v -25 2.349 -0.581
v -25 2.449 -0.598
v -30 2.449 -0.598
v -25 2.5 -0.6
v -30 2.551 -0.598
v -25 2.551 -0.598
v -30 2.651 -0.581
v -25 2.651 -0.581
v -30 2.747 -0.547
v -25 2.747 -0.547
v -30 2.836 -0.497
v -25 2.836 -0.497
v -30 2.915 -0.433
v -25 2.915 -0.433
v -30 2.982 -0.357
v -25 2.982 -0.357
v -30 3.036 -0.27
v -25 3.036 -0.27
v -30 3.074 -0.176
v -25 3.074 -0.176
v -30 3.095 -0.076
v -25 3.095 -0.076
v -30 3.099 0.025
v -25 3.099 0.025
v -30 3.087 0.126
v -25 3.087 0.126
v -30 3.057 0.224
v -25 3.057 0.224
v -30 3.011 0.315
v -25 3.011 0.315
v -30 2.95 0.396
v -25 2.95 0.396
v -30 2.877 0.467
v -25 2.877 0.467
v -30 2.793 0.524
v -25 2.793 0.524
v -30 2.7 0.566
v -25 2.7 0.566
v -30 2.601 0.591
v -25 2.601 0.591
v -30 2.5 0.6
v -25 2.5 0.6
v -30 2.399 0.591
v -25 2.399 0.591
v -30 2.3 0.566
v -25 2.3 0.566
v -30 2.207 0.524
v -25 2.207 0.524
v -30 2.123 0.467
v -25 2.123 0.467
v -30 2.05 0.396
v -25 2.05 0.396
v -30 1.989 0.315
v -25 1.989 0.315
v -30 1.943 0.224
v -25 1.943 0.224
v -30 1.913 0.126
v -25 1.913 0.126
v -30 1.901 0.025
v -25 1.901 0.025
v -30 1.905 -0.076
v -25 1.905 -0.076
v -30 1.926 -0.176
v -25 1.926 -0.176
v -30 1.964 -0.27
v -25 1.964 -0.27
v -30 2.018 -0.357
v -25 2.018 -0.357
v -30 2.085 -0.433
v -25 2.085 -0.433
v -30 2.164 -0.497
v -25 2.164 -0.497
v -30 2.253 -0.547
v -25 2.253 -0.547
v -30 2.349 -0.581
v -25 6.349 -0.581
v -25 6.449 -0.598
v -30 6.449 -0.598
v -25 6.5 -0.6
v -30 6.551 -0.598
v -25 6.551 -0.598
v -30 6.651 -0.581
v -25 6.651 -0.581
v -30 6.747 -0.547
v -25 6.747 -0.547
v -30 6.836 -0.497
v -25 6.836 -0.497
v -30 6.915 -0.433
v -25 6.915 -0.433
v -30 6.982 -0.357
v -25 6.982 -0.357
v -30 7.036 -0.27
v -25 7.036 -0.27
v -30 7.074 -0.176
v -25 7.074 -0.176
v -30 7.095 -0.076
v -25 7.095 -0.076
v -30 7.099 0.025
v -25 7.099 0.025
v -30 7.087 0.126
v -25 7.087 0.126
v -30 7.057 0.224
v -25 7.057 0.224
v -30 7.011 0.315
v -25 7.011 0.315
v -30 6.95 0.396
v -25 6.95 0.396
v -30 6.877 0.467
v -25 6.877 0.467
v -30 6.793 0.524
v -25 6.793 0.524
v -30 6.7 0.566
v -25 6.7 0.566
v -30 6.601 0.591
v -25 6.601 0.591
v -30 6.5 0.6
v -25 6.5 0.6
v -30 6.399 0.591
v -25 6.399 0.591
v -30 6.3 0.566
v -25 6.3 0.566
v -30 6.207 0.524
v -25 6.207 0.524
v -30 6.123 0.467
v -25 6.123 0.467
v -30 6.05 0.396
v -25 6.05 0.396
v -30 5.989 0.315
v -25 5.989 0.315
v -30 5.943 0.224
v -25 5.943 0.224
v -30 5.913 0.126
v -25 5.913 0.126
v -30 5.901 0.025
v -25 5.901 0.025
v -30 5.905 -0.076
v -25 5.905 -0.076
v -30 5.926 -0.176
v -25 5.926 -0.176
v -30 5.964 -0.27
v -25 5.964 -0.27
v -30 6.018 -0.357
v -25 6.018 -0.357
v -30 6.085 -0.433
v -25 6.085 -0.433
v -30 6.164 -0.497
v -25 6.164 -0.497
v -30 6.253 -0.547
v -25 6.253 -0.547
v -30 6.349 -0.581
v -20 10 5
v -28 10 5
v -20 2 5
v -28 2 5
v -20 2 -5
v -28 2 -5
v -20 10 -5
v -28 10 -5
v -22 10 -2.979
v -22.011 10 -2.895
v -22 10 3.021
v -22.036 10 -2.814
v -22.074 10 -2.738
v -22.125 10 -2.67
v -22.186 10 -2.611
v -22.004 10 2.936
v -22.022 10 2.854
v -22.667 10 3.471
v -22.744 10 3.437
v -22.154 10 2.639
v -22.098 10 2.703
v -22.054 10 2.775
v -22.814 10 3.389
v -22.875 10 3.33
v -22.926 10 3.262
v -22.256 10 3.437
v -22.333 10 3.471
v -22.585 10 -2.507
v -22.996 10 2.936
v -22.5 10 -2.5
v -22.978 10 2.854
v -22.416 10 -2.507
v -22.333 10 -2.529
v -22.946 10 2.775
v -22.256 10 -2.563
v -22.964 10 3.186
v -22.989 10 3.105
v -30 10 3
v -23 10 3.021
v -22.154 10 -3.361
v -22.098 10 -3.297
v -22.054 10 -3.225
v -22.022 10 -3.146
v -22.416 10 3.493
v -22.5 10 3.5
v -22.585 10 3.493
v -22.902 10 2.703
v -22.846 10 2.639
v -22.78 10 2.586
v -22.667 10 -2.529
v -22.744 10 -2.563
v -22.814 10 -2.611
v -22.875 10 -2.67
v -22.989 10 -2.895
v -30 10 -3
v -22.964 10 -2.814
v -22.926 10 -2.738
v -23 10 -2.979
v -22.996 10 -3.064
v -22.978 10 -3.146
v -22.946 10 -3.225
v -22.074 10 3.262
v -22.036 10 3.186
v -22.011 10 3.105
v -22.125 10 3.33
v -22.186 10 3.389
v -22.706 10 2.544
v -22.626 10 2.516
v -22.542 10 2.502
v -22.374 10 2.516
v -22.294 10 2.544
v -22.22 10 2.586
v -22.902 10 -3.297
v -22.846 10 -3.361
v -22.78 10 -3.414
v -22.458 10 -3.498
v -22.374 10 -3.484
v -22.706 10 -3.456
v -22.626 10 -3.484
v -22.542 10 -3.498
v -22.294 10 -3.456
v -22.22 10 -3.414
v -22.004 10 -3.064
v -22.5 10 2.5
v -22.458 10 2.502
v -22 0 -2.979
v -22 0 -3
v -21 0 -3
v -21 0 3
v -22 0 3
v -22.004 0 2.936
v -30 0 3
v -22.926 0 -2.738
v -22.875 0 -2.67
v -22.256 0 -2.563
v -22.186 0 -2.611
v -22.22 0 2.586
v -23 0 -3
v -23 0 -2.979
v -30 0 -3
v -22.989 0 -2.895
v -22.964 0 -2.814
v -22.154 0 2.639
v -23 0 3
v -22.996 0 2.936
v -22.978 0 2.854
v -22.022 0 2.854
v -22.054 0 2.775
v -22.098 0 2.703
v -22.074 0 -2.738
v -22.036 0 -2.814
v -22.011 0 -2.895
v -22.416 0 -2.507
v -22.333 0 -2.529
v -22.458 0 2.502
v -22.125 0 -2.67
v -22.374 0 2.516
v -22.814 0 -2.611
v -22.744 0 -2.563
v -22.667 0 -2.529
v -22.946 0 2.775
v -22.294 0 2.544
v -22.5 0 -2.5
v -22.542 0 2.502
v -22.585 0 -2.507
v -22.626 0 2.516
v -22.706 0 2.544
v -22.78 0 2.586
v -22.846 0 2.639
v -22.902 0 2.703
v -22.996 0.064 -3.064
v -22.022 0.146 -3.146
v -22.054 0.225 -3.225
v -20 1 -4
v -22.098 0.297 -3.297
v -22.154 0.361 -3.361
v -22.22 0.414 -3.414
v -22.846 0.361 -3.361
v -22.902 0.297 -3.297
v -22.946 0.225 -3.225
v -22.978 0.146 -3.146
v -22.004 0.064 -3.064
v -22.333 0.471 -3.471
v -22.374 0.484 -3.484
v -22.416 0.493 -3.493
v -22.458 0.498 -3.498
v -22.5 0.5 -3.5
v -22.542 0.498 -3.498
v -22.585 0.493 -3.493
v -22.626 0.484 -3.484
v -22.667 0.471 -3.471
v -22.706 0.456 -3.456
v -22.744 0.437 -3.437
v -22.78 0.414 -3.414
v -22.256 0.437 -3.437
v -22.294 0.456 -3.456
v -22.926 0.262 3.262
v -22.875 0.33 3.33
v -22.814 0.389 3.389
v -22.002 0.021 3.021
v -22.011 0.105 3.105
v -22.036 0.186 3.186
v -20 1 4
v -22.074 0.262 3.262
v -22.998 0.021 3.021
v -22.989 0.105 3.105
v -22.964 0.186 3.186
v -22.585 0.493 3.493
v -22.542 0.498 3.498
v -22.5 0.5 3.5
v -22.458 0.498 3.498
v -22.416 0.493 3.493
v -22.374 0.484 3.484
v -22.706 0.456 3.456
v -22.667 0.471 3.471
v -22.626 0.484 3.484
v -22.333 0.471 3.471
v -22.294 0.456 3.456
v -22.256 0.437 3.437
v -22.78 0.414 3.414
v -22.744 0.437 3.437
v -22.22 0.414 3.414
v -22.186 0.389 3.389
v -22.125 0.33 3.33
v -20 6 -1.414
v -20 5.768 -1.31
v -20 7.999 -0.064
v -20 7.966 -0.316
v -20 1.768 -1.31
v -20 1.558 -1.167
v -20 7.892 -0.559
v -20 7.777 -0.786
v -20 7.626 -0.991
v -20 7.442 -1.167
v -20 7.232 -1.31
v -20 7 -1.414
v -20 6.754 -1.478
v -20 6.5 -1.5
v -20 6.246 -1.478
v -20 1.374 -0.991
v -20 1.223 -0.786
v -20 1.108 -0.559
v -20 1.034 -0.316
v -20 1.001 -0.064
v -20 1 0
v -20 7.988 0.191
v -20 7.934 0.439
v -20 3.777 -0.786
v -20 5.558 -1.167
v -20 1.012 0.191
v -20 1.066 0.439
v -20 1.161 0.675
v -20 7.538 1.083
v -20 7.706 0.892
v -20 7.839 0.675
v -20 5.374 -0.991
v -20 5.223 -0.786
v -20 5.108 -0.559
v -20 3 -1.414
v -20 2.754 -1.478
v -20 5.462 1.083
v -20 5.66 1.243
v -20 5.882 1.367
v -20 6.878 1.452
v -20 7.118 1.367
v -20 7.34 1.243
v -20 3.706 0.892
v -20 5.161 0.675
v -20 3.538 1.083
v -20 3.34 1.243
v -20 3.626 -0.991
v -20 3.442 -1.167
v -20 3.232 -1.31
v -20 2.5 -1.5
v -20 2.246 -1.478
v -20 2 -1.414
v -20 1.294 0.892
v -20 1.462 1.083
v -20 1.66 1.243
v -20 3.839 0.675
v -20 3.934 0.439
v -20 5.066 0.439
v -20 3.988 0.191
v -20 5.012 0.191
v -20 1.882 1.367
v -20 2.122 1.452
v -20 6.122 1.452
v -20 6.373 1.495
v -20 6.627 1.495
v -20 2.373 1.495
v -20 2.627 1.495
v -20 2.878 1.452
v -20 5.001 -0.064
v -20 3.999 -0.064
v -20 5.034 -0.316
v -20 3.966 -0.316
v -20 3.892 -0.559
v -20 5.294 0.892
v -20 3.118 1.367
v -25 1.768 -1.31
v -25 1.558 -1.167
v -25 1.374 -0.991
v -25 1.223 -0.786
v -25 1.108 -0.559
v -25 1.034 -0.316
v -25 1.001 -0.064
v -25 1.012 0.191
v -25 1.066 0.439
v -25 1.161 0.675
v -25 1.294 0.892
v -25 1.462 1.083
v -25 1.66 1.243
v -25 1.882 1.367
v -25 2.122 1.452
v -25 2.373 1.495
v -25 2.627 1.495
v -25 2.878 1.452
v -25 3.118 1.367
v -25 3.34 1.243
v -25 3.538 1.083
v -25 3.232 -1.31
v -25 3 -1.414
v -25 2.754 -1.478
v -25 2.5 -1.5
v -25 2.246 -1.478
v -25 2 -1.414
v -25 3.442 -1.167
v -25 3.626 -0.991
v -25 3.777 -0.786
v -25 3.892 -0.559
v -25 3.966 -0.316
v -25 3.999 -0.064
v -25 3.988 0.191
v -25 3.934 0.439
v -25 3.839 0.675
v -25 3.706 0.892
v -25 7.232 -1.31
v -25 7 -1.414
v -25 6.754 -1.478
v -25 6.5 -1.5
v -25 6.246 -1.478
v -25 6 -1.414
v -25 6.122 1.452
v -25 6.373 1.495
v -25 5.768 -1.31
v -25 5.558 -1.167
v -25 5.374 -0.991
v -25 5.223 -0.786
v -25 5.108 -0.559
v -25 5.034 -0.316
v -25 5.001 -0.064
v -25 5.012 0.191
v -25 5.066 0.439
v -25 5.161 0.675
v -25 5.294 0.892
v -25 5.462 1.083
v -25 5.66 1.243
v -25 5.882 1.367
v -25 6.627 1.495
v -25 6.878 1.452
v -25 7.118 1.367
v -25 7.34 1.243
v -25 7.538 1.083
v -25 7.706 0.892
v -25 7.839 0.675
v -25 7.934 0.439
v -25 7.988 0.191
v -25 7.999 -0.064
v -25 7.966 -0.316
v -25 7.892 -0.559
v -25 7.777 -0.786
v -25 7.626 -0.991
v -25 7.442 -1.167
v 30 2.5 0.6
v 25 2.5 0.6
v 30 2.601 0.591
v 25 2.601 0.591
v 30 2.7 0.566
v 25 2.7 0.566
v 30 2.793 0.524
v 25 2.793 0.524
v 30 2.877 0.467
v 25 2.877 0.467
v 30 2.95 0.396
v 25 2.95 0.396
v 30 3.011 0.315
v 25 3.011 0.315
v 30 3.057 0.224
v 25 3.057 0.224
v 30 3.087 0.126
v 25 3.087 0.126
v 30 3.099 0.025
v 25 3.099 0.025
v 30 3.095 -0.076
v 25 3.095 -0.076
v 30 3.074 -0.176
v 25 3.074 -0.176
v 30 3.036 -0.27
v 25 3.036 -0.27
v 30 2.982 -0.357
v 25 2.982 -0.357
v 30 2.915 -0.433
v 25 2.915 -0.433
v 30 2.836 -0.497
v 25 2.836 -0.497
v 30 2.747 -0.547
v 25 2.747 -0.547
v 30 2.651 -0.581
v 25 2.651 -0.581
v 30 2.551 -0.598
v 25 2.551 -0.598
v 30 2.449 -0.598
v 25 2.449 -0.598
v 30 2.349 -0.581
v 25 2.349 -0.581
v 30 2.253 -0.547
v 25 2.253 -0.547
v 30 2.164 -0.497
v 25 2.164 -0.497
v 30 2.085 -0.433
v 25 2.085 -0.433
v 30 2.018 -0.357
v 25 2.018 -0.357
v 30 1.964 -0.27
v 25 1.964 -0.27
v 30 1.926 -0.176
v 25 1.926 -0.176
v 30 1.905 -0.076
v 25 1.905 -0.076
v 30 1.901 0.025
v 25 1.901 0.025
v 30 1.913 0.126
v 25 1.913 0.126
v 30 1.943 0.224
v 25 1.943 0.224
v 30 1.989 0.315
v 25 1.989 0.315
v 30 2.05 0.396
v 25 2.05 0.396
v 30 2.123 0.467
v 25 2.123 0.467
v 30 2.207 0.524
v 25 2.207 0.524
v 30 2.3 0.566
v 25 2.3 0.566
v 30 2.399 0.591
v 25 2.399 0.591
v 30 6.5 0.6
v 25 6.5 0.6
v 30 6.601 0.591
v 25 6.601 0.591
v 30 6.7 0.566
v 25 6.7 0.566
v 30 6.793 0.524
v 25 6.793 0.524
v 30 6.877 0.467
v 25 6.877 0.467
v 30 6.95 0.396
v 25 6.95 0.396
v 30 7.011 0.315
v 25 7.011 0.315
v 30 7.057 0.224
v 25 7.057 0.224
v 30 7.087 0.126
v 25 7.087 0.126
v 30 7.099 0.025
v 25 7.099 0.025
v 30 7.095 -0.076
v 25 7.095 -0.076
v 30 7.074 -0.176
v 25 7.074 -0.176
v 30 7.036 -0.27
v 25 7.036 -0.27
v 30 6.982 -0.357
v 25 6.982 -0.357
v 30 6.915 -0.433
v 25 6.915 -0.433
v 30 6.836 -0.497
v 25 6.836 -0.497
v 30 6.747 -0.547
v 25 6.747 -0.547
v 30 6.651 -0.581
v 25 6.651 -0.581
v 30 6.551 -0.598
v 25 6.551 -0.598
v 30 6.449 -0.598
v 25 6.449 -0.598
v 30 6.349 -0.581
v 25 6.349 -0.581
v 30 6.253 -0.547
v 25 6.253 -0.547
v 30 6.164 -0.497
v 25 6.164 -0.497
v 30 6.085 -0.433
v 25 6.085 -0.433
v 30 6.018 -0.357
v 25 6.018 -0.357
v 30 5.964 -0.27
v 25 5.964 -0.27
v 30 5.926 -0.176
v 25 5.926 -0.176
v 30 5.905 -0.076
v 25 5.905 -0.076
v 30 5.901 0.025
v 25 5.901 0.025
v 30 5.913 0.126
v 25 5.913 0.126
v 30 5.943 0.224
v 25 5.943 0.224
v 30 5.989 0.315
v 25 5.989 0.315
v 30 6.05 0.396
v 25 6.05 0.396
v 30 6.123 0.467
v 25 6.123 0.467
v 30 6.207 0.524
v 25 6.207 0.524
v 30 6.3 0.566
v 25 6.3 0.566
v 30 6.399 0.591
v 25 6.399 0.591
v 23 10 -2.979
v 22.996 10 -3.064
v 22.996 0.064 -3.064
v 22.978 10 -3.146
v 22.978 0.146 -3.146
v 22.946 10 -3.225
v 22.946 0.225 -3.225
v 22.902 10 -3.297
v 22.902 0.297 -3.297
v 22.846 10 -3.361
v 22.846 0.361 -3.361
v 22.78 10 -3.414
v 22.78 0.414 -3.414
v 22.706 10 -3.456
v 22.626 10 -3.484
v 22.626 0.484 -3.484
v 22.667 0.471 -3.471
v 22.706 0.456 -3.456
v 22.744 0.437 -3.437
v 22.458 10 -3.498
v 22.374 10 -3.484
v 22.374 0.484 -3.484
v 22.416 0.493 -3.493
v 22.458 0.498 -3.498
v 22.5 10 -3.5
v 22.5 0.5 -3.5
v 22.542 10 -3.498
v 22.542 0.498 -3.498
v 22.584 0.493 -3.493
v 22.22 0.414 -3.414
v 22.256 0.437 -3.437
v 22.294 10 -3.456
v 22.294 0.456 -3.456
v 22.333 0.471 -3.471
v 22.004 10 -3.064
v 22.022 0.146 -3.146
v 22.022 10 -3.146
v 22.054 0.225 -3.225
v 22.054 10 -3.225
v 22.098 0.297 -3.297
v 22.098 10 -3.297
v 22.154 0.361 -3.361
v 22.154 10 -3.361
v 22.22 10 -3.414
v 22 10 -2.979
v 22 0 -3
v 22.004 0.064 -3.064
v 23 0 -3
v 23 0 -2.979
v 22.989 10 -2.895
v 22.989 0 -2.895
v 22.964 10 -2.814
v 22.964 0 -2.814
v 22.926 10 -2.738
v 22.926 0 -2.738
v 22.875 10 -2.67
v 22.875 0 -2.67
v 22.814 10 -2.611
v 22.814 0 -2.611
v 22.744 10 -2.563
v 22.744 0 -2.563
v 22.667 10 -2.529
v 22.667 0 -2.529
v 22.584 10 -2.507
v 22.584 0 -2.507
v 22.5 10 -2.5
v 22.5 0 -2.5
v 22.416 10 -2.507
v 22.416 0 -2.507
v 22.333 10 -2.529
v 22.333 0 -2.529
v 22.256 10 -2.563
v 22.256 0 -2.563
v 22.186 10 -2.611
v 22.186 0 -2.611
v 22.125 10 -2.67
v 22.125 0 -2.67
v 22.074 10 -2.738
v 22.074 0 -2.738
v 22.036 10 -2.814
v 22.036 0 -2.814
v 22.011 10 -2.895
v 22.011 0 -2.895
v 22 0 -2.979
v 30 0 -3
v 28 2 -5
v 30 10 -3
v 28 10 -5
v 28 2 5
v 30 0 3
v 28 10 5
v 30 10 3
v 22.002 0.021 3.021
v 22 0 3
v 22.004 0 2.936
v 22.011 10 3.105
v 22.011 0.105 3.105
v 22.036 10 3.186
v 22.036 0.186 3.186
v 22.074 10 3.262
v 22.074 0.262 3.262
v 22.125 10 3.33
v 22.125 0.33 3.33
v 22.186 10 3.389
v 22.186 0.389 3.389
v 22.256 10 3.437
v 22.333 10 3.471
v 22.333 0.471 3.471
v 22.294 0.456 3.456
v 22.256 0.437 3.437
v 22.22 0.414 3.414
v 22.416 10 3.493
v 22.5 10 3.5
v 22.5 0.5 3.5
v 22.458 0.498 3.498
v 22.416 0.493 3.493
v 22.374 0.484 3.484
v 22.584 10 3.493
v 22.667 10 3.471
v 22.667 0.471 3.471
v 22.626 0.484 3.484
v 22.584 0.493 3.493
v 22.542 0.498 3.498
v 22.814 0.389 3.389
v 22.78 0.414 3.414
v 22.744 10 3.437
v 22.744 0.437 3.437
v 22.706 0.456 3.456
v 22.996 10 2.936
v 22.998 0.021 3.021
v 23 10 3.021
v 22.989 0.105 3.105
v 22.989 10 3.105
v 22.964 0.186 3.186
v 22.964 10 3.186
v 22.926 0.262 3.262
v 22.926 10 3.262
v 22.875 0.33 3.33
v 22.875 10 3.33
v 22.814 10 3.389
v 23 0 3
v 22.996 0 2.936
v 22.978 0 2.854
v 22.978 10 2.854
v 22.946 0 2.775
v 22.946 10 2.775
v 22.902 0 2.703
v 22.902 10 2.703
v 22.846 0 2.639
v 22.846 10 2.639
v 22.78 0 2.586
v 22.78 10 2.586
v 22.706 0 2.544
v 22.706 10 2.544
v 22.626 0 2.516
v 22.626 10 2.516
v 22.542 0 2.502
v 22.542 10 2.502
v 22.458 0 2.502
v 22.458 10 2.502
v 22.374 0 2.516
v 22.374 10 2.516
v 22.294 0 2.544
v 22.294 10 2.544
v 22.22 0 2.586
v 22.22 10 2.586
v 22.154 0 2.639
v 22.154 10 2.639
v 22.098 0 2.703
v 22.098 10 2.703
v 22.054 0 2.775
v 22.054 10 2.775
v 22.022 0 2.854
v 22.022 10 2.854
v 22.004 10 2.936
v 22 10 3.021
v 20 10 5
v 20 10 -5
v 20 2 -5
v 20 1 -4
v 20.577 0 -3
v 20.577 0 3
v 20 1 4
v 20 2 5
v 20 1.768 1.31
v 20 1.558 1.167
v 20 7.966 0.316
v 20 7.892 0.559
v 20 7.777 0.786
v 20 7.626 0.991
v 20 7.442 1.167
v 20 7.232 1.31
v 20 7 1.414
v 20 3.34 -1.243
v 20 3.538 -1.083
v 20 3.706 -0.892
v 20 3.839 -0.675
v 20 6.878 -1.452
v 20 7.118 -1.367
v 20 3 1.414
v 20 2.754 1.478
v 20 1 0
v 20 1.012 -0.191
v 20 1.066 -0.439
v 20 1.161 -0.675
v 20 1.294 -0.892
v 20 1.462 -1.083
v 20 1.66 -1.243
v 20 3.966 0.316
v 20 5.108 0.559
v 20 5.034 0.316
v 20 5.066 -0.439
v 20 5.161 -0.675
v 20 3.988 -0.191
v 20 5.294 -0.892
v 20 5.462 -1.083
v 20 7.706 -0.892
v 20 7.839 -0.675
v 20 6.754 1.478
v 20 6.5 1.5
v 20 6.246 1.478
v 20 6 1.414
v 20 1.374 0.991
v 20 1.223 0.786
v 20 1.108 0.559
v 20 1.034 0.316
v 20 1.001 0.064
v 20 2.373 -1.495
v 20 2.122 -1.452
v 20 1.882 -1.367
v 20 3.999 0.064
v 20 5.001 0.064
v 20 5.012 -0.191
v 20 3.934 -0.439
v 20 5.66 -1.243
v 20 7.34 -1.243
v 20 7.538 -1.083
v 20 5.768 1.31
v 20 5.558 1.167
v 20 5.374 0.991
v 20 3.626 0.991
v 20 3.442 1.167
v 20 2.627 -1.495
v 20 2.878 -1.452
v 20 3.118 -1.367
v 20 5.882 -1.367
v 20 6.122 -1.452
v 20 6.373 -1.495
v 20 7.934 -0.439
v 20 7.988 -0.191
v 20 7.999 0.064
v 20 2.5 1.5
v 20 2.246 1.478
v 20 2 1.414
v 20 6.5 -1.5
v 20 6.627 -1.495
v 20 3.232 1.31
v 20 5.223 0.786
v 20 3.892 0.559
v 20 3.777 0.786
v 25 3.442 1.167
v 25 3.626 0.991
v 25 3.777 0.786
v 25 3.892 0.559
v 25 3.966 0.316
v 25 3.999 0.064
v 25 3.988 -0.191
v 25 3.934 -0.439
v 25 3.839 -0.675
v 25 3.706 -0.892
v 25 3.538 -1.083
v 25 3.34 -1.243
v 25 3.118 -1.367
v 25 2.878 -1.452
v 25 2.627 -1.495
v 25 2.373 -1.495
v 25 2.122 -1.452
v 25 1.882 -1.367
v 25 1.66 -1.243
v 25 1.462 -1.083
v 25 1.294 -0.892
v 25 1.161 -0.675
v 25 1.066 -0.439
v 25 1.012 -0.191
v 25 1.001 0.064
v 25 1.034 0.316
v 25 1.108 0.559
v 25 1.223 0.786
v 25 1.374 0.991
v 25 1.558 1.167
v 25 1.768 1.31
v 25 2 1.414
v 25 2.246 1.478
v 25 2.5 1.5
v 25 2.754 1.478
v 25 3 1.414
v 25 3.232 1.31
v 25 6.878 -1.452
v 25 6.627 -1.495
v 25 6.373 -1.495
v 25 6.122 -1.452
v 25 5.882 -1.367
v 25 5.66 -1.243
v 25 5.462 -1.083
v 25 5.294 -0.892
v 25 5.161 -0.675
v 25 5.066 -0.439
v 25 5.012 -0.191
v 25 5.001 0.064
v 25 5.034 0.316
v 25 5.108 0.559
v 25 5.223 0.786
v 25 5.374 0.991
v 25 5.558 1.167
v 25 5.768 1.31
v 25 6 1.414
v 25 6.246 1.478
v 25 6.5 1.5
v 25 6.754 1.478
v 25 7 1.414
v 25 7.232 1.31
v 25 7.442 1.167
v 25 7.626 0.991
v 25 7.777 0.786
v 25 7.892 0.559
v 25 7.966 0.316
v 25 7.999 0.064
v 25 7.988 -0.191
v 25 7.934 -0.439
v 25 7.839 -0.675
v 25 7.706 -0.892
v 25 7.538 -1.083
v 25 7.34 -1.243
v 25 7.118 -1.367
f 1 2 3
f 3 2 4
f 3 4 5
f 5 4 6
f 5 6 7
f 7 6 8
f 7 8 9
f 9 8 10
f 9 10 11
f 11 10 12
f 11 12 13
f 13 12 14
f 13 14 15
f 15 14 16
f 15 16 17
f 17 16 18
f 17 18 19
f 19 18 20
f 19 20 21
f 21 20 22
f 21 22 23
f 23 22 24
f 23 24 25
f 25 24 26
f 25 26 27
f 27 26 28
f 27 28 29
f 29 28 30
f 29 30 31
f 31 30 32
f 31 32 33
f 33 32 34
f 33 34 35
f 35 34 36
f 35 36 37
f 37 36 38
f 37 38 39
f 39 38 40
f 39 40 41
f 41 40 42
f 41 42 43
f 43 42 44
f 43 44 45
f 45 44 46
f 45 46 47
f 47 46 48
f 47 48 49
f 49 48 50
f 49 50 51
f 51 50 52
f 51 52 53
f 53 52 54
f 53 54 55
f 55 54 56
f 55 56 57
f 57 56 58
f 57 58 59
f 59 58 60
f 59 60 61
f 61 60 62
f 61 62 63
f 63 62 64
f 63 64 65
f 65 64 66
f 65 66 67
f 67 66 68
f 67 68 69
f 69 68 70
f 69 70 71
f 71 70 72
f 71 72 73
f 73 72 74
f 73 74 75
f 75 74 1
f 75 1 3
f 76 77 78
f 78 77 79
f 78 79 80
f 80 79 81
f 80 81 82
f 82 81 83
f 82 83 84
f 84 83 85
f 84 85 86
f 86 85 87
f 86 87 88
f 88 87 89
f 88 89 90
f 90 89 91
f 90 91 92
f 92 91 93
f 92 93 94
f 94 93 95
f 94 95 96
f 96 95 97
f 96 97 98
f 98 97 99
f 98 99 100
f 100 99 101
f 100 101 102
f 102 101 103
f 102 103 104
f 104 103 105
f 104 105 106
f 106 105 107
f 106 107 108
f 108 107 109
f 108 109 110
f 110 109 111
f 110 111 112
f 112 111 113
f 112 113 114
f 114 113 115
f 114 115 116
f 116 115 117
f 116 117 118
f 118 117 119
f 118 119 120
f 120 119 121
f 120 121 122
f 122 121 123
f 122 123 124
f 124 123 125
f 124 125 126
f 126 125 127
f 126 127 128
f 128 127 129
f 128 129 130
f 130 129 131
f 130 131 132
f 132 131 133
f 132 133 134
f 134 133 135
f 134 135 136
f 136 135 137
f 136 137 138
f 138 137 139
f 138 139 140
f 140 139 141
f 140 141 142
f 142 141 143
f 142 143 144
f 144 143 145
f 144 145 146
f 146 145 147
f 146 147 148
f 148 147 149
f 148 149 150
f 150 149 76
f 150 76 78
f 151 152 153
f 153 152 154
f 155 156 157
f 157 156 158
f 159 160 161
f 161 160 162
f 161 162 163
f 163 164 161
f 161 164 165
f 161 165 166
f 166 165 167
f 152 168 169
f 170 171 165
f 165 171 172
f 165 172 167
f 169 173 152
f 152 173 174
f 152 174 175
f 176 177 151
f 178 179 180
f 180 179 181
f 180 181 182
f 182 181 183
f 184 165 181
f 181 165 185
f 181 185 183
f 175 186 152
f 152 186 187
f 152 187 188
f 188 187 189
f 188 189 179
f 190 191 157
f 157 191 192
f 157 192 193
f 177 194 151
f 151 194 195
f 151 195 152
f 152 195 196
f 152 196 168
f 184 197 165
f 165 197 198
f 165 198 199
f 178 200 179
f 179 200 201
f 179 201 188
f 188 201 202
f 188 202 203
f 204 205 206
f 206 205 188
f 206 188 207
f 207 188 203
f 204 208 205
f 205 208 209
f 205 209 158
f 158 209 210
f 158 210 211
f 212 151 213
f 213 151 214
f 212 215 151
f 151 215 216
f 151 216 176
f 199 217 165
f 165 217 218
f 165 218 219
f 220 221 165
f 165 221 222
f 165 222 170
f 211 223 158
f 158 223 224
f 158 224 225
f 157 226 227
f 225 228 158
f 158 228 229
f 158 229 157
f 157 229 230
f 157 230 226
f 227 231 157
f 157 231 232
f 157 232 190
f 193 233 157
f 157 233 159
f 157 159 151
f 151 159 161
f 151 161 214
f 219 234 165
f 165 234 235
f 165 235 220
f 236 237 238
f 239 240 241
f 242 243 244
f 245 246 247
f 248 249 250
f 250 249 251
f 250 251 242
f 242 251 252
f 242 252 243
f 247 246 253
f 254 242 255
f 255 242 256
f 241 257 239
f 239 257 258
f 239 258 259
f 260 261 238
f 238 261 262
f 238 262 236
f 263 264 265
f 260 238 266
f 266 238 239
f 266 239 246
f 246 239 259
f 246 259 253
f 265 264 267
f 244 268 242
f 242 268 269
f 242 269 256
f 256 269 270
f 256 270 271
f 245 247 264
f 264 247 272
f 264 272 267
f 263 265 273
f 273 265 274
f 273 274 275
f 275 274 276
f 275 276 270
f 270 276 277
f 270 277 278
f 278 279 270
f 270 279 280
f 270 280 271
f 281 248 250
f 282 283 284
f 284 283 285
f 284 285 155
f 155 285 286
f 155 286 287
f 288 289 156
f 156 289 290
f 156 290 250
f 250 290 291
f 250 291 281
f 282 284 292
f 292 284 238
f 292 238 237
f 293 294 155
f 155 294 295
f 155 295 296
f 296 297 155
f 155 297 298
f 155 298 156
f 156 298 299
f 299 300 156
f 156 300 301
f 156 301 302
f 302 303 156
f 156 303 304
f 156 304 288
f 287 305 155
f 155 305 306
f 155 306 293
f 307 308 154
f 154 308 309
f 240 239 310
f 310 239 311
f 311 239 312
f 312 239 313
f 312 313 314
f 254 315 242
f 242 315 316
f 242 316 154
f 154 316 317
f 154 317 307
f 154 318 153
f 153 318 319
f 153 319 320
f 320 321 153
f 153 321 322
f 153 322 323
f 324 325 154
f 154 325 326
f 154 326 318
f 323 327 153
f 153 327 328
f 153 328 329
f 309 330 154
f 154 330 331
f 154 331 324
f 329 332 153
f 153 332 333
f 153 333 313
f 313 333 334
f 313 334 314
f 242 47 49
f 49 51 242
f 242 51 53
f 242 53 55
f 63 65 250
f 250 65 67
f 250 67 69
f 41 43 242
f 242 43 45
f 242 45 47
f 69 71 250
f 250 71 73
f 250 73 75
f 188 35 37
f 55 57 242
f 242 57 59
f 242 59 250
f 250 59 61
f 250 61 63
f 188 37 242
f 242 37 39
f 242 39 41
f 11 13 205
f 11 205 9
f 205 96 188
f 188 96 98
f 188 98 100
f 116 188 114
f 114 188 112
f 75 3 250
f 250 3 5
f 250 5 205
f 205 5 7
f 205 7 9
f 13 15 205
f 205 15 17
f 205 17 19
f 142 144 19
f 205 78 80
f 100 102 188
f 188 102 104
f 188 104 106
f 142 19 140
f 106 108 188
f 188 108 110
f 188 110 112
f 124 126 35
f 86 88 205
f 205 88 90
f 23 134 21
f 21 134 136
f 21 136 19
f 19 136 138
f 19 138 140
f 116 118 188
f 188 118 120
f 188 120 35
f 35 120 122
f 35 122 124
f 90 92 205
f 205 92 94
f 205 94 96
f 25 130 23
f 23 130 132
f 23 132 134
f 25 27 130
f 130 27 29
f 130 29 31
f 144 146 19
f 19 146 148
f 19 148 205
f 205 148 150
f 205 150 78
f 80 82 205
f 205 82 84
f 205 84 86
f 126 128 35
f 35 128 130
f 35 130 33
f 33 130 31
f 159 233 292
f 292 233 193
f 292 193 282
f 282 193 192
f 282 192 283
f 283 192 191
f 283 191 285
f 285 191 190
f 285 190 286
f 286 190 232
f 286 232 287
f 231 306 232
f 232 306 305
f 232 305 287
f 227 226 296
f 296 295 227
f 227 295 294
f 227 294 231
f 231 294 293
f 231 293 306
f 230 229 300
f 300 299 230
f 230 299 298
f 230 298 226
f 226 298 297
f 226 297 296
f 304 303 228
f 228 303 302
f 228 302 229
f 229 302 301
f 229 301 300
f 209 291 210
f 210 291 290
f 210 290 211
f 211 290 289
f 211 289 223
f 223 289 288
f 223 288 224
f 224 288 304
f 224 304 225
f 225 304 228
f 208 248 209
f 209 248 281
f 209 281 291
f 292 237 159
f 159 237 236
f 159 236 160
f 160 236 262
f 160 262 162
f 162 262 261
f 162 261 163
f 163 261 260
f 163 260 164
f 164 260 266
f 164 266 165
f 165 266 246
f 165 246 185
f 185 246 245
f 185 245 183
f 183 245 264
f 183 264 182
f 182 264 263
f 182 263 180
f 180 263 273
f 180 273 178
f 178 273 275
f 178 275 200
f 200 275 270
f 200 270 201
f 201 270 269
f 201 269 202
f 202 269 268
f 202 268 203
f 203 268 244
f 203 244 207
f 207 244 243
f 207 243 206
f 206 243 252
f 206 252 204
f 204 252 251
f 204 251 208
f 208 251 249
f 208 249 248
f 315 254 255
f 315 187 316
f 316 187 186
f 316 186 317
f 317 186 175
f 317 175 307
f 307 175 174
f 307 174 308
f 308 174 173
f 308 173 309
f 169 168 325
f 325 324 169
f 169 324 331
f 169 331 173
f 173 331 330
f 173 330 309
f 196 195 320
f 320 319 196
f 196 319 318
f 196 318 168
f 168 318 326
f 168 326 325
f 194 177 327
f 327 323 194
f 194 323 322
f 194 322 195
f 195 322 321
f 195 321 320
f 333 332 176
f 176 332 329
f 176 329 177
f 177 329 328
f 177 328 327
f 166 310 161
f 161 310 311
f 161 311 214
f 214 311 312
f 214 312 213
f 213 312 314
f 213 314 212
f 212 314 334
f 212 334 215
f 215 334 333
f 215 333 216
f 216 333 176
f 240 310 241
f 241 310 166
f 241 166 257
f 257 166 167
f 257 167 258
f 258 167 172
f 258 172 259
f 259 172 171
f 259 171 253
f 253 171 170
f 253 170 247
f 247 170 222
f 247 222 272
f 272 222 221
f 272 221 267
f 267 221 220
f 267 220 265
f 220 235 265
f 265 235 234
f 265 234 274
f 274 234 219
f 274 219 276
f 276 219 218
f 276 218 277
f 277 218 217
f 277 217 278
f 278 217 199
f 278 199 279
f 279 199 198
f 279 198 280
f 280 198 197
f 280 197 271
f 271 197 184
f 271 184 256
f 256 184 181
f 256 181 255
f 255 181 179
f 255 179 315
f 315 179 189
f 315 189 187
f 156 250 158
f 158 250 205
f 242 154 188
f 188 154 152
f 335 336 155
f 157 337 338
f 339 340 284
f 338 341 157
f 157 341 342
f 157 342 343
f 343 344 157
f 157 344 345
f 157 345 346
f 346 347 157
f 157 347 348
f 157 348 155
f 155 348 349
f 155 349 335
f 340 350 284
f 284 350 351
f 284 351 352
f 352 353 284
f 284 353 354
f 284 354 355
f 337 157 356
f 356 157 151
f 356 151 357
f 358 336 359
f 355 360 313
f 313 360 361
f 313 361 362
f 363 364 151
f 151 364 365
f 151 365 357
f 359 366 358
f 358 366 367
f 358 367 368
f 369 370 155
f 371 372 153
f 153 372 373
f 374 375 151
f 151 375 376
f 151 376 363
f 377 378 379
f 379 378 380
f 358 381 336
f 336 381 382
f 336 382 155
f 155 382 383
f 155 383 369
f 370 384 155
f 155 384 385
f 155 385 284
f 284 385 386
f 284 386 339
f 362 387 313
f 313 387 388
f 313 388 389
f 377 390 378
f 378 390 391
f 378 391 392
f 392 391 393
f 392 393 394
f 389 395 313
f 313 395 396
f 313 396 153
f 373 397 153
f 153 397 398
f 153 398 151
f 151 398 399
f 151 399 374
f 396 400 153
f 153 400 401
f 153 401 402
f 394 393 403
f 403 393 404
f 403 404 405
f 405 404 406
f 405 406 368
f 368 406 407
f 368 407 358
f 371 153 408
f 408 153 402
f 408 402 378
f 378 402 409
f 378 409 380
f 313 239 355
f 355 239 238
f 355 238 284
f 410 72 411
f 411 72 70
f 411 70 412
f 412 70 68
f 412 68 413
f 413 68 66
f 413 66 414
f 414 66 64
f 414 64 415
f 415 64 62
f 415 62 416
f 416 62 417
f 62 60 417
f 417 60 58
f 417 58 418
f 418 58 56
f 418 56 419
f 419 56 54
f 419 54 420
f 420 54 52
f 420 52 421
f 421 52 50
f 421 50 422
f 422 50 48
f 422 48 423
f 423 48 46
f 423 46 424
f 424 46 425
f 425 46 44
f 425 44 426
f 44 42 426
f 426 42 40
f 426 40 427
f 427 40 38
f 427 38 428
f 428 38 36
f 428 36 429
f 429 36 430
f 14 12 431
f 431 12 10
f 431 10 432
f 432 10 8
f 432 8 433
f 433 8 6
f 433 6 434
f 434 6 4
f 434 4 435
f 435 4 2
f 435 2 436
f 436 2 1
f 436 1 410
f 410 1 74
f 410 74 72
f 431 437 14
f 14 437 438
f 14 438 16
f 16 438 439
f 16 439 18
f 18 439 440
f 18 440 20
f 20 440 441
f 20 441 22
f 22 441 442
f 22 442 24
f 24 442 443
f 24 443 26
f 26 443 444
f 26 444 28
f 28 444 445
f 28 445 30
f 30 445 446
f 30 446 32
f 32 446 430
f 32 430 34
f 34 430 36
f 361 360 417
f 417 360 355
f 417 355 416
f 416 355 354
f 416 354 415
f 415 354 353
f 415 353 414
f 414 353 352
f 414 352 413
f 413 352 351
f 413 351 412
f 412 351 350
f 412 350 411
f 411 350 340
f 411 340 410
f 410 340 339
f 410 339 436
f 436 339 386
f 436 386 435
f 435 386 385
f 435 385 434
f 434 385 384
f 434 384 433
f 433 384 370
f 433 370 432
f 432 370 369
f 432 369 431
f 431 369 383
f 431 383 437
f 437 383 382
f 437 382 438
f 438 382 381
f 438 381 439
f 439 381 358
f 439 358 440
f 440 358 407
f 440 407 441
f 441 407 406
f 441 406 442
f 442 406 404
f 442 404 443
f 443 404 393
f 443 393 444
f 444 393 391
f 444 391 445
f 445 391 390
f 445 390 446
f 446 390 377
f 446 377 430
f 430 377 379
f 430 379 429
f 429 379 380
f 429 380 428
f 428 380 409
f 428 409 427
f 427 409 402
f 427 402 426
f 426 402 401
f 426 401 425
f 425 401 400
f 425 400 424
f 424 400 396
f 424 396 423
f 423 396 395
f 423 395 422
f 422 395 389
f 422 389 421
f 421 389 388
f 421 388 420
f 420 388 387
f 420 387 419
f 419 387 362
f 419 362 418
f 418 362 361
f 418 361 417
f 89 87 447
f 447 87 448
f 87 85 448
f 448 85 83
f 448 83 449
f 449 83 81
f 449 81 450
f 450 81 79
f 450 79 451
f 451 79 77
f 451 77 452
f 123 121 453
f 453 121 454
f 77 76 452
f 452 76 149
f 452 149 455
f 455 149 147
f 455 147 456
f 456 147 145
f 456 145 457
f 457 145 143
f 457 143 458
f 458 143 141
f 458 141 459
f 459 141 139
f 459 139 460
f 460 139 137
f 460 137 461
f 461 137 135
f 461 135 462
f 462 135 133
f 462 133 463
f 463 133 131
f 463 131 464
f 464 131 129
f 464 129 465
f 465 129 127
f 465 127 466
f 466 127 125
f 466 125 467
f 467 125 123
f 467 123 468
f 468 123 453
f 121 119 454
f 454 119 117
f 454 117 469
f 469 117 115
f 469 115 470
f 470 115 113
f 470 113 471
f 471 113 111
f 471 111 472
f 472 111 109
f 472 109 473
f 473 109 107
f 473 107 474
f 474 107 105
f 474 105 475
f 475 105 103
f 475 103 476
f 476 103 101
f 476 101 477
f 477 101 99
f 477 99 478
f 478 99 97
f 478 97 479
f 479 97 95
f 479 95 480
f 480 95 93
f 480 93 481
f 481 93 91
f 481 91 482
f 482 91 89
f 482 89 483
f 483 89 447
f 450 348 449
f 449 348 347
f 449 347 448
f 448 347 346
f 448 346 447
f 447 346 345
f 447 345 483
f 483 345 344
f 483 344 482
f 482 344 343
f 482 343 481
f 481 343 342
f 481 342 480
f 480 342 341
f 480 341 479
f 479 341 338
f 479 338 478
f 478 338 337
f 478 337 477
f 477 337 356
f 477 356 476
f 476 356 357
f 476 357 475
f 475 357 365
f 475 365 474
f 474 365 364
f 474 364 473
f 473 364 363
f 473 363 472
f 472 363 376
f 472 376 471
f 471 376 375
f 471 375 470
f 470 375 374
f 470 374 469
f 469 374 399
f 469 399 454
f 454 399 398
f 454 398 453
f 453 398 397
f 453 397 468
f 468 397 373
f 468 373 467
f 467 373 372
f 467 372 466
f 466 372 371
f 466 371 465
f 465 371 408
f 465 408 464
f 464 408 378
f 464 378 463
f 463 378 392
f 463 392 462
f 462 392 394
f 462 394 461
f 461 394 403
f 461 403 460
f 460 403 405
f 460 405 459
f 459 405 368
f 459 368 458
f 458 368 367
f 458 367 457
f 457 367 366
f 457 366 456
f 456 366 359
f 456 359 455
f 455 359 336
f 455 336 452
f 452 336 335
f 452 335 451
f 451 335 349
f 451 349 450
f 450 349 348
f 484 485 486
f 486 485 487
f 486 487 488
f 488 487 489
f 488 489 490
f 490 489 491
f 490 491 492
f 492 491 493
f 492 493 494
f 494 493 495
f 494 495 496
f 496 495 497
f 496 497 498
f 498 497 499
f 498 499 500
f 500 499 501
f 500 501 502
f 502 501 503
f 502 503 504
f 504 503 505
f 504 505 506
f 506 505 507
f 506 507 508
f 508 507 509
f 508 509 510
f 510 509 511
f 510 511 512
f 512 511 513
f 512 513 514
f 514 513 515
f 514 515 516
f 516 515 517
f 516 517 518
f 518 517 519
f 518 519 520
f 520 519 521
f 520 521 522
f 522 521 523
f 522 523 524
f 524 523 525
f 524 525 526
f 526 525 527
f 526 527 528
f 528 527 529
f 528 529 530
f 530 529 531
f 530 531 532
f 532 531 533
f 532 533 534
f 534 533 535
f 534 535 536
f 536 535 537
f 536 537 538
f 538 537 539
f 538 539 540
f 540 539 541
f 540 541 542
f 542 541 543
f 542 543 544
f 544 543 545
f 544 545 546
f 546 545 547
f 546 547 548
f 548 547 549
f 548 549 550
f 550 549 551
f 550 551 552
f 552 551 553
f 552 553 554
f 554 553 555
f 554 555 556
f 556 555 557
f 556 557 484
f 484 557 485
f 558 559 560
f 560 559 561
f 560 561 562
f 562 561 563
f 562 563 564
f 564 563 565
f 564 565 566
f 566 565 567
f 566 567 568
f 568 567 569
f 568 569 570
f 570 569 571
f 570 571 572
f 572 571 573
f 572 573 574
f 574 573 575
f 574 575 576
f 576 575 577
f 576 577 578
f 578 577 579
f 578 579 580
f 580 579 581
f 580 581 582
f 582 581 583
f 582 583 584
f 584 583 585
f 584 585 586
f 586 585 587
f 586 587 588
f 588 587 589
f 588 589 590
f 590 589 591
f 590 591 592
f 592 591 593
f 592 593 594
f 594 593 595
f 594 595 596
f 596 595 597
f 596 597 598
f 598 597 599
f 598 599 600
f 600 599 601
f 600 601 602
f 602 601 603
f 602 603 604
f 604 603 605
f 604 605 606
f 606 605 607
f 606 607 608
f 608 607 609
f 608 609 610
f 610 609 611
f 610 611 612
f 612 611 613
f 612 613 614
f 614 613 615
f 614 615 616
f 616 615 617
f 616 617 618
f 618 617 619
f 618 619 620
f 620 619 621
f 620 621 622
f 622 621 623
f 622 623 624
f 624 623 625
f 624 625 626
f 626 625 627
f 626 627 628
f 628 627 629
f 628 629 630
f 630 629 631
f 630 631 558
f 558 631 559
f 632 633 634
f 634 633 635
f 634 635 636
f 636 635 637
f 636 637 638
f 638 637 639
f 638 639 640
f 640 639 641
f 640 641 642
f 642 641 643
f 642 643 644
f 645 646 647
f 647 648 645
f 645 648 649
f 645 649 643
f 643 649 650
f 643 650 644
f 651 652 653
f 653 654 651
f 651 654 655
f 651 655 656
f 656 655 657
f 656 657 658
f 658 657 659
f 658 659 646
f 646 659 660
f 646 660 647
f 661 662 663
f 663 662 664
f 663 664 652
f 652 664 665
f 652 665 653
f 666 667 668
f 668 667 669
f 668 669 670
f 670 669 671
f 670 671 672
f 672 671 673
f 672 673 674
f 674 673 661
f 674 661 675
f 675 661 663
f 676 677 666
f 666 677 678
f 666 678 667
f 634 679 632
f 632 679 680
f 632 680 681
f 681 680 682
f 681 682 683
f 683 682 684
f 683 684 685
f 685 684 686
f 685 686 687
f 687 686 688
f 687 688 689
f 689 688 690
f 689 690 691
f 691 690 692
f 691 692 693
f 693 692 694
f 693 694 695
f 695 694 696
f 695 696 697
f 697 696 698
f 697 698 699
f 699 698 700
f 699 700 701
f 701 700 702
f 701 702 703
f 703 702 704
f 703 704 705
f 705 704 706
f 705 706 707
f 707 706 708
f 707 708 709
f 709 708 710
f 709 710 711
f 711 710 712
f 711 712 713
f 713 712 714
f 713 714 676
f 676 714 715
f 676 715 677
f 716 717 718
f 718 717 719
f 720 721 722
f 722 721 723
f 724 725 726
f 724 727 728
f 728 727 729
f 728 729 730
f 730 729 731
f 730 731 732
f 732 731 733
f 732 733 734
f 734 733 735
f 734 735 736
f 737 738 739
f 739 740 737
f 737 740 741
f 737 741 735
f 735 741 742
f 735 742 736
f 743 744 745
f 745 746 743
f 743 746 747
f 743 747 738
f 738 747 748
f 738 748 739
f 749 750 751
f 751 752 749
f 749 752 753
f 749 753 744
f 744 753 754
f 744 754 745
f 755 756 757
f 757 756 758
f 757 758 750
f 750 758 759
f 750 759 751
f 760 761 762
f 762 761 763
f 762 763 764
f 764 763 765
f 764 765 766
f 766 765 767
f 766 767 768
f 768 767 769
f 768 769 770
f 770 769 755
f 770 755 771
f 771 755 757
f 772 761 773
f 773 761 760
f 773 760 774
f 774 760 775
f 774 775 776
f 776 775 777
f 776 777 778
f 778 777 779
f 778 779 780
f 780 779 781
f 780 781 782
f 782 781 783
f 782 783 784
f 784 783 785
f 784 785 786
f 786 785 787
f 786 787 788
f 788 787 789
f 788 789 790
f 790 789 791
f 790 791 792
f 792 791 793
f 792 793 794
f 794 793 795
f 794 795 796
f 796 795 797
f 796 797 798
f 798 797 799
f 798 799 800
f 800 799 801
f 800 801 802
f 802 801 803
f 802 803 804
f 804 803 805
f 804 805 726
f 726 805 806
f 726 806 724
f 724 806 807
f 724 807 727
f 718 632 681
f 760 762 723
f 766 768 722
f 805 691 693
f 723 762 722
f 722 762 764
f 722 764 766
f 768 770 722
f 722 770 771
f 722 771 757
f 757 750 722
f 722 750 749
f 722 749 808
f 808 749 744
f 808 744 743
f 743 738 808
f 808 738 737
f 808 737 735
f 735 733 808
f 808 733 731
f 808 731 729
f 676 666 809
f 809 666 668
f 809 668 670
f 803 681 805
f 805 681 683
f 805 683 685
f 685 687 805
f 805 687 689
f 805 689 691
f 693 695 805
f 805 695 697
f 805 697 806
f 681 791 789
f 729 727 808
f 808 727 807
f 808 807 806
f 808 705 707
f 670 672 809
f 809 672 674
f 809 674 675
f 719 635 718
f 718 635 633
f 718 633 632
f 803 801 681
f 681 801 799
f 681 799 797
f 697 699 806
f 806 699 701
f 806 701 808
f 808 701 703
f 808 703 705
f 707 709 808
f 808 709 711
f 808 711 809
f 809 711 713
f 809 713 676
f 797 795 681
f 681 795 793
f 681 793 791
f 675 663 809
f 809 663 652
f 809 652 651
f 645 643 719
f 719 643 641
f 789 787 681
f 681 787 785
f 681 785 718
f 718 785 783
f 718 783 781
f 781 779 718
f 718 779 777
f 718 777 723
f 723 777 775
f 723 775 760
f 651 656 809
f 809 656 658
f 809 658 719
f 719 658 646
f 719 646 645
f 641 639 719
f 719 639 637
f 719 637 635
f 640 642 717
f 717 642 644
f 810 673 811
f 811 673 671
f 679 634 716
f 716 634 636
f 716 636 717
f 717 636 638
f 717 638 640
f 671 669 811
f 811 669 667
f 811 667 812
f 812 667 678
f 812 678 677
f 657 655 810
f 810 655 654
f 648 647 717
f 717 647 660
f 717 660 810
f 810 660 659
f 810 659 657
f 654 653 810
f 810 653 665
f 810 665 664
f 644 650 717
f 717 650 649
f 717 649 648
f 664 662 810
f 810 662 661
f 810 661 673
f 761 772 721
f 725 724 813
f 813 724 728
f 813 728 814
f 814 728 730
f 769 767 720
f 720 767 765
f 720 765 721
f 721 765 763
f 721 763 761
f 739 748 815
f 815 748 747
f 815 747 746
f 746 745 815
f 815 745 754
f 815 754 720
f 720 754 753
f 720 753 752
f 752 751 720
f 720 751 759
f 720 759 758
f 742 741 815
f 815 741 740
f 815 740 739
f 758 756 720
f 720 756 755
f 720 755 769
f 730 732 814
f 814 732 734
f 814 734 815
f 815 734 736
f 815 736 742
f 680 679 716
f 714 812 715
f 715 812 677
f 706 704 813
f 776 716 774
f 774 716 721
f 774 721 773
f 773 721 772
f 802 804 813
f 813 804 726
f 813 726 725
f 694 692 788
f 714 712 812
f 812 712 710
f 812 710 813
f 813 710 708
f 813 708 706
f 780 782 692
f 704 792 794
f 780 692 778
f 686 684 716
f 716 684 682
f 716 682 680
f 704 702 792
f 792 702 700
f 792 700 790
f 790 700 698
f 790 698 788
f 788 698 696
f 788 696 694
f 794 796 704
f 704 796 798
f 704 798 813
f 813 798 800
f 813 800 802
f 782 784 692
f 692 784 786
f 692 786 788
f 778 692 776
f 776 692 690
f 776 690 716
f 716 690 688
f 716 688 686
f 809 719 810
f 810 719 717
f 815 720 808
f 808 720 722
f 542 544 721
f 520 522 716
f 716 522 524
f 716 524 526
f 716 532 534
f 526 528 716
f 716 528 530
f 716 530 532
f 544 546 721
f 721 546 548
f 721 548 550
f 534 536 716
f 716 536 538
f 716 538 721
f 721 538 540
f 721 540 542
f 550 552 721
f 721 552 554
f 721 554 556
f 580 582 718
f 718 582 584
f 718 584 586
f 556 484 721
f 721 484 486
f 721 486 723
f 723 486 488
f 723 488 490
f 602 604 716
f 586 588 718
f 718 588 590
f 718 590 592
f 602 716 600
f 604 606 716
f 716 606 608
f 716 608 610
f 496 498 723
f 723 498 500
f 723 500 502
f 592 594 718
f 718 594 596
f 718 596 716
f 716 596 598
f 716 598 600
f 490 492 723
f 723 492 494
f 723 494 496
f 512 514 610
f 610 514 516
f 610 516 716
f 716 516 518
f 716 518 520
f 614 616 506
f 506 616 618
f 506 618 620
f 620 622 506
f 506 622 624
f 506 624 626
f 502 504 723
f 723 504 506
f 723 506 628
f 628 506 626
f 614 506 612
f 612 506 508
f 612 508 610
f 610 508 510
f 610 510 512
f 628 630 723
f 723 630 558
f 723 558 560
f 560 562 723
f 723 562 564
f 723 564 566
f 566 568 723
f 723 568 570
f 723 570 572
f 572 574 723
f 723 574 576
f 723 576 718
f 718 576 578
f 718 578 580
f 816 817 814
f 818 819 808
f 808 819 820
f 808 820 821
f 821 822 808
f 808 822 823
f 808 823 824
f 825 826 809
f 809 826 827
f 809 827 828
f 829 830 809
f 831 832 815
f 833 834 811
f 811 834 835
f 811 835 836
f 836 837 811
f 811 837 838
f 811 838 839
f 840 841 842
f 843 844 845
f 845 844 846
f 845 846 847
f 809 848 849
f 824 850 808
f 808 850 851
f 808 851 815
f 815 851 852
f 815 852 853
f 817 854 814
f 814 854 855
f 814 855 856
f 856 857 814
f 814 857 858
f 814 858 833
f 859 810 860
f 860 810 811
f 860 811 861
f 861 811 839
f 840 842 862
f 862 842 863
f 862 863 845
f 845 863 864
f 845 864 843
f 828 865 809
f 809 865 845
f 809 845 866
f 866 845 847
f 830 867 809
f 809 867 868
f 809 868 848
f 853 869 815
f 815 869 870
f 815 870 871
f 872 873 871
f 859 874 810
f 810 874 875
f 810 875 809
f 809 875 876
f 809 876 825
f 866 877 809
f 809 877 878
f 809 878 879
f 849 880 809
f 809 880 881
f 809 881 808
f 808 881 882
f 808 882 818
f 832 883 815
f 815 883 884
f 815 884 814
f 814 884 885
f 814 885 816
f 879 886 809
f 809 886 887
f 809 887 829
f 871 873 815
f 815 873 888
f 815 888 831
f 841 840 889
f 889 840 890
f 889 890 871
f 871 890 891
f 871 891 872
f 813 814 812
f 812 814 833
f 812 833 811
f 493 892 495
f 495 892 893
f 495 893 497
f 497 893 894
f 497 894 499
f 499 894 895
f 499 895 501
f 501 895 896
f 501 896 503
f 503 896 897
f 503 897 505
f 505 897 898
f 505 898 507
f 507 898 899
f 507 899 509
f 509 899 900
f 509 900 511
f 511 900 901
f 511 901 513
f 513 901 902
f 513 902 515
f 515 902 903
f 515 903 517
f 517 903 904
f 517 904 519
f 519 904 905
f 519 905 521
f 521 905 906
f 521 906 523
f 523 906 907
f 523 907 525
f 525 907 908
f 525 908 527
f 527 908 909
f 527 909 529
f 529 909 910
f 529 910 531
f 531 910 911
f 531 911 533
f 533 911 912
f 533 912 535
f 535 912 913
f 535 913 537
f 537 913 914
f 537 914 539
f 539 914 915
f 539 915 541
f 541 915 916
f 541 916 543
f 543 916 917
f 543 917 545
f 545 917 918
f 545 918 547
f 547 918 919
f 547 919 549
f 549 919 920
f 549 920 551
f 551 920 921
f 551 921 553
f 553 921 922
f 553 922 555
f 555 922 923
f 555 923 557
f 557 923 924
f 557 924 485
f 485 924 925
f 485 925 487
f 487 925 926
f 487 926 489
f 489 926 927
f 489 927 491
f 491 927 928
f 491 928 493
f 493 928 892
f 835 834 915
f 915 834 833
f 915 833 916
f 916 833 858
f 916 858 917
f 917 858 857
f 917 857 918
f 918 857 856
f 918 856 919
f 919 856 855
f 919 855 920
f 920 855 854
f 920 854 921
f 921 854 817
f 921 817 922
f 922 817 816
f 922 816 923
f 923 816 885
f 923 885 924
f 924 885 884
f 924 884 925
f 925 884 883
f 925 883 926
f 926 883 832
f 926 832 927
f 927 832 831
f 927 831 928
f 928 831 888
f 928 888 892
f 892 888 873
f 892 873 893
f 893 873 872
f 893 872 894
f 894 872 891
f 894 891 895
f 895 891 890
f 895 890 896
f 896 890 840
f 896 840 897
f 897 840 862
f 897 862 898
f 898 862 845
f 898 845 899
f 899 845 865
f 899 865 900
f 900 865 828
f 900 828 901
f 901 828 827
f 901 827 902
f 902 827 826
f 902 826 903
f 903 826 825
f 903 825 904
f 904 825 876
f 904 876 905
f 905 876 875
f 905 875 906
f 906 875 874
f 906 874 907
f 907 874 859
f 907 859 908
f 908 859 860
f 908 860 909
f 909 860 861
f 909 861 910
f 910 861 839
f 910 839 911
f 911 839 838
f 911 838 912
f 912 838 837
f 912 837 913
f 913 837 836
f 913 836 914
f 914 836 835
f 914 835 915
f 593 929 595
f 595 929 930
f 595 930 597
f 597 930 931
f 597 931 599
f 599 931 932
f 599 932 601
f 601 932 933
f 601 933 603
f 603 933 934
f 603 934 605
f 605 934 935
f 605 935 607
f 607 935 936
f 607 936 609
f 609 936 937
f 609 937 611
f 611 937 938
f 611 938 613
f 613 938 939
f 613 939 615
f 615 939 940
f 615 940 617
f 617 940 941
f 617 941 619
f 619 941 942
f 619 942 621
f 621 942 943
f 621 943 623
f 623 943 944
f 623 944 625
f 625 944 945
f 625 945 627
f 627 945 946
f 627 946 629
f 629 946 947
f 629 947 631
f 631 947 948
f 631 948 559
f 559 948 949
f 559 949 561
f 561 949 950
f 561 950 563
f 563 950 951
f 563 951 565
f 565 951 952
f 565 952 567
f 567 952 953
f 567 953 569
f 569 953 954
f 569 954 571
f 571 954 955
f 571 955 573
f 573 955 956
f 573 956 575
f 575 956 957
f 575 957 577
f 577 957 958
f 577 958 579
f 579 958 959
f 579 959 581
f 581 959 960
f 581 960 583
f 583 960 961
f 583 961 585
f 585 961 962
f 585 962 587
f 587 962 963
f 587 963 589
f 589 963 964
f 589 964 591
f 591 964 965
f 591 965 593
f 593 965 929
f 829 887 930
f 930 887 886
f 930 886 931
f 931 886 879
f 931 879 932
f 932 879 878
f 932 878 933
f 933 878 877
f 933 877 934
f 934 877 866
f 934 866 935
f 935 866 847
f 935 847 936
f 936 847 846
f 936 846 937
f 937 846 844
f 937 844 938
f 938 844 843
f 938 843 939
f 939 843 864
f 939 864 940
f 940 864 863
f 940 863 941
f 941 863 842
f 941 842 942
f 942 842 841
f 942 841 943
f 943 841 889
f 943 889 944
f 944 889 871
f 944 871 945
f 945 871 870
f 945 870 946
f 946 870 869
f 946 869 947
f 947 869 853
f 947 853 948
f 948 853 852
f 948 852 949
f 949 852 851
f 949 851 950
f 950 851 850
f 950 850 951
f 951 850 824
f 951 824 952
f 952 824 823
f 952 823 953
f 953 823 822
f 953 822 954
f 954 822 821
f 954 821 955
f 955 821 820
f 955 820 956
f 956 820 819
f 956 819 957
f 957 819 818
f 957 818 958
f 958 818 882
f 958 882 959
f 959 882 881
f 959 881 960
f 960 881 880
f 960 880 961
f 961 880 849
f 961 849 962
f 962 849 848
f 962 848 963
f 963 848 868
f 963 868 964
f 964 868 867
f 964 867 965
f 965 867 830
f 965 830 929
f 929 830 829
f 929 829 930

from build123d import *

# Parameters (mm, degrees)
SKETCH_1_W          = 60
SKETCH_1_H          = 10
EXTRUDE_1_DEPTH     = 10
SKETCH_2_R          = 0.6
CUT_EXTRUDE_1_DEPTH = 62.032778079
SKETCH_5_R          = 0.5
CUT_EXTRUDE_3_DEPTH = 33.015621187
CHAMFER_2_SIZE      = 2
CHAMFER_3_SIZE      = 2
SKETCH_6_W          = 40
SKETCH_6_H          = 10
CUT_EXTRUDE_4_DEPTH = 33.015621187
CHAMFER_6_SIZE      = 1
CHAMFER_7_SIZE      = 1
CHAMFER_7_SIZE2     = 0.577350269
SKETCH_7_R          = 1.5
CUT_EXTRUDE_6_DEPTH = 5
SKETCH_8_R          = 1.5
CUT_EXTRUDE_9_DEPTH = 5


with BuildPart() as part:
    # 草图1 → 凸台-拉伸1 (new body)
    with BuildSketch(Plane(origin=(0, 0, 0), x_dir=(1, 0, 0), z_dir=(0, 1, 0))):
        Rectangle(SKETCH_1_W, SKETCH_1_H)
    extrude(amount=EXTRUDE_1_DEPTH)

    # 草图2 → 切除-拉伸1 (cut, through all)
    with BuildSketch(Plane.ZY.offset(30)):
        with Locations((0, 6.5)):
            Circle(SKETCH_2_R)
        with Locations((0, 2.5)):
            Circle(SKETCH_2_R)
    extrude(amount=-CUT_EXTRUDE_1_DEPTH, mode=Mode.SUBTRACT)

    # 草图5 → 切除-拉伸3 (cut, through all)
    with BuildSketch(Plane(origin=(0, 10, 0), x_dir=(1, 0, 0), z_dir=(0, 1, 0))):
        with Locations(Location((-22.5, 3, 0), (0, 0, 270))):
            Circle(SKETCH_5_R)
        with Locations(Location((-22.5, -3, 0), (0, 0, 90))):
            Circle(SKETCH_5_R)
        with Locations(Location((22.5, -3, 0), (0, 0, 270))):
            Circle(SKETCH_5_R)
        with Locations(Location((22.5, 3, 0), (0, 0, 90))):
            Circle(SKETCH_5_R)
    extrude(amount=-CUT_EXTRUDE_3_DEPTH, mode=Mode.SUBTRACT)

    # 倒角2
    # the kernel refuses this chamfer: 2 mm, written as the material it takes off along each edge
    with BuildSketch(Plane(origin=(-35.143365976, 0, -5), x_dir=(0, -0.027495876610586372, 0.9996219169112968), z_dir=(1, 0, 0))) as chamfer_2_piece_1:
        Polygon((CHAMFER_2_SIZE * 0.999621916911, -CHAMFER_2_SIZE * 0.0274958766106), (-CHAMFER_2_SIZE * 0.0274958766106, -CHAMFER_2_SIZE * 0.999621916911), (0, 0), align=None)
    extrude(amount=70.286731952, mode=Mode.SUBTRACT)
    with BuildSketch(Plane(origin=(35.143365976, 0, 5), x_dir=(0, 0.9996219169112968, 0.027495876610586494), z_dir=(-1, 0, 0))) as chamfer_2_piece_2:
        Polygon((CHAMFER_2_SIZE * 0.999621916911, CHAMFER_2_SIZE * 0.0274958766106), (-CHAMFER_2_SIZE * 0.0274958766106, CHAMFER_2_SIZE * 0.999621916911), (0, 0), align=None)
    extrude(amount=70.286731952, mode=Mode.SUBTRACT)

    # 倒角3
    chamfer_3_edges = [part.edges().sort_by_distance(p)[0] for p in [
        (-30, 6, -5),
        (-30, 6, 5),
        (30, 6, 5),
        (30, 6, -5),
    ]]
    chamfer(chamfer_3_edges, length=CHAMFER_3_SIZE)

    # 草图6 → 切除-拉伸4 (cut, through all)
    with BuildSketch(Plane(origin=(0, 10, 0), x_dir=(1, 0, 0), z_dir=(0, 1, 0))):
        Rectangle(SKETCH_6_W, SKETCH_6_H)
    extrude(amount=-CUT_EXTRUDE_4_DEPTH, mode=Mode.SUBTRACT)


with BuildPart() as cut_extrude_4_piece_1:
    # of the separate pieces the step leaves, piece 1, a body of its own (cut_extrude_4_pieces)
    add(part.part.solids().sort_by_distance((-20, 2, 5))[0])

    # 倒角6
    chamfer_6_edges = [cut_extrude_4_piece_1.edges().sort_by_distance(p)[0] for p in [
        (-20, 0, 0),
    ]]
    chamfer(chamfer_6_edges, length=CHAMFER_6_SIZE)

    # 草图7 → 切除-拉伸6 (cut)
    with BuildSketch(Plane(origin=(-20, 0, 0), x_dir=(0, 0, -1), z_dir=(1, 0, 0))):
        with Locations((0, 6.5)):
            Circle(SKETCH_7_R)
        with Locations((0, 2.5)):
            Circle(SKETCH_7_R)
    extrude(amount=-CUT_EXTRUDE_6_DEPTH, mode=Mode.SUBTRACT)


with BuildPart() as cut_extrude_4_piece_2:
    # of the separate pieces the step leaves, piece 2, a body of its own (cut_extrude_4_pieces)
    add(part.part.solids().sort_by_distance((28, 2, 5))[0])

    # 倒角7
    chamfer_7_edges = [cut_extrude_4_piece_2.edges().sort_by_distance(p)[0] for p in [
        (20, 0, 0),
    ]]
    chamfer_7_side = [cut_extrude_4_piece_2.faces().sort_by_distance(p)[0] for p in [
        (20, 5.196977706, 0),
    ]]
    chamfer(chamfer_7_edges, length=CHAMFER_7_SIZE, length2=CHAMFER_7_SIZE2, reference=chamfer_7_side[0])

    # 草图8 → 切除-拉伸9 (cut)
    with BuildSketch(Plane(origin=(20, 0, 0), x_dir=(0, 0, -1), z_dir=(1, 0, 0))):
        with Locations((0, 6.5)):
            Circle(SKETCH_8_R)
        with Locations((0, 2.5)):
            Circle(SKETCH_8_R)
    extrude(amount=CUT_EXTRUDE_9_DEPTH, mode=Mode.SUBTRACT)


solid = Compound([cut_extrude_4_piece_1.part, cut_extrude_4_piece_2.part])
